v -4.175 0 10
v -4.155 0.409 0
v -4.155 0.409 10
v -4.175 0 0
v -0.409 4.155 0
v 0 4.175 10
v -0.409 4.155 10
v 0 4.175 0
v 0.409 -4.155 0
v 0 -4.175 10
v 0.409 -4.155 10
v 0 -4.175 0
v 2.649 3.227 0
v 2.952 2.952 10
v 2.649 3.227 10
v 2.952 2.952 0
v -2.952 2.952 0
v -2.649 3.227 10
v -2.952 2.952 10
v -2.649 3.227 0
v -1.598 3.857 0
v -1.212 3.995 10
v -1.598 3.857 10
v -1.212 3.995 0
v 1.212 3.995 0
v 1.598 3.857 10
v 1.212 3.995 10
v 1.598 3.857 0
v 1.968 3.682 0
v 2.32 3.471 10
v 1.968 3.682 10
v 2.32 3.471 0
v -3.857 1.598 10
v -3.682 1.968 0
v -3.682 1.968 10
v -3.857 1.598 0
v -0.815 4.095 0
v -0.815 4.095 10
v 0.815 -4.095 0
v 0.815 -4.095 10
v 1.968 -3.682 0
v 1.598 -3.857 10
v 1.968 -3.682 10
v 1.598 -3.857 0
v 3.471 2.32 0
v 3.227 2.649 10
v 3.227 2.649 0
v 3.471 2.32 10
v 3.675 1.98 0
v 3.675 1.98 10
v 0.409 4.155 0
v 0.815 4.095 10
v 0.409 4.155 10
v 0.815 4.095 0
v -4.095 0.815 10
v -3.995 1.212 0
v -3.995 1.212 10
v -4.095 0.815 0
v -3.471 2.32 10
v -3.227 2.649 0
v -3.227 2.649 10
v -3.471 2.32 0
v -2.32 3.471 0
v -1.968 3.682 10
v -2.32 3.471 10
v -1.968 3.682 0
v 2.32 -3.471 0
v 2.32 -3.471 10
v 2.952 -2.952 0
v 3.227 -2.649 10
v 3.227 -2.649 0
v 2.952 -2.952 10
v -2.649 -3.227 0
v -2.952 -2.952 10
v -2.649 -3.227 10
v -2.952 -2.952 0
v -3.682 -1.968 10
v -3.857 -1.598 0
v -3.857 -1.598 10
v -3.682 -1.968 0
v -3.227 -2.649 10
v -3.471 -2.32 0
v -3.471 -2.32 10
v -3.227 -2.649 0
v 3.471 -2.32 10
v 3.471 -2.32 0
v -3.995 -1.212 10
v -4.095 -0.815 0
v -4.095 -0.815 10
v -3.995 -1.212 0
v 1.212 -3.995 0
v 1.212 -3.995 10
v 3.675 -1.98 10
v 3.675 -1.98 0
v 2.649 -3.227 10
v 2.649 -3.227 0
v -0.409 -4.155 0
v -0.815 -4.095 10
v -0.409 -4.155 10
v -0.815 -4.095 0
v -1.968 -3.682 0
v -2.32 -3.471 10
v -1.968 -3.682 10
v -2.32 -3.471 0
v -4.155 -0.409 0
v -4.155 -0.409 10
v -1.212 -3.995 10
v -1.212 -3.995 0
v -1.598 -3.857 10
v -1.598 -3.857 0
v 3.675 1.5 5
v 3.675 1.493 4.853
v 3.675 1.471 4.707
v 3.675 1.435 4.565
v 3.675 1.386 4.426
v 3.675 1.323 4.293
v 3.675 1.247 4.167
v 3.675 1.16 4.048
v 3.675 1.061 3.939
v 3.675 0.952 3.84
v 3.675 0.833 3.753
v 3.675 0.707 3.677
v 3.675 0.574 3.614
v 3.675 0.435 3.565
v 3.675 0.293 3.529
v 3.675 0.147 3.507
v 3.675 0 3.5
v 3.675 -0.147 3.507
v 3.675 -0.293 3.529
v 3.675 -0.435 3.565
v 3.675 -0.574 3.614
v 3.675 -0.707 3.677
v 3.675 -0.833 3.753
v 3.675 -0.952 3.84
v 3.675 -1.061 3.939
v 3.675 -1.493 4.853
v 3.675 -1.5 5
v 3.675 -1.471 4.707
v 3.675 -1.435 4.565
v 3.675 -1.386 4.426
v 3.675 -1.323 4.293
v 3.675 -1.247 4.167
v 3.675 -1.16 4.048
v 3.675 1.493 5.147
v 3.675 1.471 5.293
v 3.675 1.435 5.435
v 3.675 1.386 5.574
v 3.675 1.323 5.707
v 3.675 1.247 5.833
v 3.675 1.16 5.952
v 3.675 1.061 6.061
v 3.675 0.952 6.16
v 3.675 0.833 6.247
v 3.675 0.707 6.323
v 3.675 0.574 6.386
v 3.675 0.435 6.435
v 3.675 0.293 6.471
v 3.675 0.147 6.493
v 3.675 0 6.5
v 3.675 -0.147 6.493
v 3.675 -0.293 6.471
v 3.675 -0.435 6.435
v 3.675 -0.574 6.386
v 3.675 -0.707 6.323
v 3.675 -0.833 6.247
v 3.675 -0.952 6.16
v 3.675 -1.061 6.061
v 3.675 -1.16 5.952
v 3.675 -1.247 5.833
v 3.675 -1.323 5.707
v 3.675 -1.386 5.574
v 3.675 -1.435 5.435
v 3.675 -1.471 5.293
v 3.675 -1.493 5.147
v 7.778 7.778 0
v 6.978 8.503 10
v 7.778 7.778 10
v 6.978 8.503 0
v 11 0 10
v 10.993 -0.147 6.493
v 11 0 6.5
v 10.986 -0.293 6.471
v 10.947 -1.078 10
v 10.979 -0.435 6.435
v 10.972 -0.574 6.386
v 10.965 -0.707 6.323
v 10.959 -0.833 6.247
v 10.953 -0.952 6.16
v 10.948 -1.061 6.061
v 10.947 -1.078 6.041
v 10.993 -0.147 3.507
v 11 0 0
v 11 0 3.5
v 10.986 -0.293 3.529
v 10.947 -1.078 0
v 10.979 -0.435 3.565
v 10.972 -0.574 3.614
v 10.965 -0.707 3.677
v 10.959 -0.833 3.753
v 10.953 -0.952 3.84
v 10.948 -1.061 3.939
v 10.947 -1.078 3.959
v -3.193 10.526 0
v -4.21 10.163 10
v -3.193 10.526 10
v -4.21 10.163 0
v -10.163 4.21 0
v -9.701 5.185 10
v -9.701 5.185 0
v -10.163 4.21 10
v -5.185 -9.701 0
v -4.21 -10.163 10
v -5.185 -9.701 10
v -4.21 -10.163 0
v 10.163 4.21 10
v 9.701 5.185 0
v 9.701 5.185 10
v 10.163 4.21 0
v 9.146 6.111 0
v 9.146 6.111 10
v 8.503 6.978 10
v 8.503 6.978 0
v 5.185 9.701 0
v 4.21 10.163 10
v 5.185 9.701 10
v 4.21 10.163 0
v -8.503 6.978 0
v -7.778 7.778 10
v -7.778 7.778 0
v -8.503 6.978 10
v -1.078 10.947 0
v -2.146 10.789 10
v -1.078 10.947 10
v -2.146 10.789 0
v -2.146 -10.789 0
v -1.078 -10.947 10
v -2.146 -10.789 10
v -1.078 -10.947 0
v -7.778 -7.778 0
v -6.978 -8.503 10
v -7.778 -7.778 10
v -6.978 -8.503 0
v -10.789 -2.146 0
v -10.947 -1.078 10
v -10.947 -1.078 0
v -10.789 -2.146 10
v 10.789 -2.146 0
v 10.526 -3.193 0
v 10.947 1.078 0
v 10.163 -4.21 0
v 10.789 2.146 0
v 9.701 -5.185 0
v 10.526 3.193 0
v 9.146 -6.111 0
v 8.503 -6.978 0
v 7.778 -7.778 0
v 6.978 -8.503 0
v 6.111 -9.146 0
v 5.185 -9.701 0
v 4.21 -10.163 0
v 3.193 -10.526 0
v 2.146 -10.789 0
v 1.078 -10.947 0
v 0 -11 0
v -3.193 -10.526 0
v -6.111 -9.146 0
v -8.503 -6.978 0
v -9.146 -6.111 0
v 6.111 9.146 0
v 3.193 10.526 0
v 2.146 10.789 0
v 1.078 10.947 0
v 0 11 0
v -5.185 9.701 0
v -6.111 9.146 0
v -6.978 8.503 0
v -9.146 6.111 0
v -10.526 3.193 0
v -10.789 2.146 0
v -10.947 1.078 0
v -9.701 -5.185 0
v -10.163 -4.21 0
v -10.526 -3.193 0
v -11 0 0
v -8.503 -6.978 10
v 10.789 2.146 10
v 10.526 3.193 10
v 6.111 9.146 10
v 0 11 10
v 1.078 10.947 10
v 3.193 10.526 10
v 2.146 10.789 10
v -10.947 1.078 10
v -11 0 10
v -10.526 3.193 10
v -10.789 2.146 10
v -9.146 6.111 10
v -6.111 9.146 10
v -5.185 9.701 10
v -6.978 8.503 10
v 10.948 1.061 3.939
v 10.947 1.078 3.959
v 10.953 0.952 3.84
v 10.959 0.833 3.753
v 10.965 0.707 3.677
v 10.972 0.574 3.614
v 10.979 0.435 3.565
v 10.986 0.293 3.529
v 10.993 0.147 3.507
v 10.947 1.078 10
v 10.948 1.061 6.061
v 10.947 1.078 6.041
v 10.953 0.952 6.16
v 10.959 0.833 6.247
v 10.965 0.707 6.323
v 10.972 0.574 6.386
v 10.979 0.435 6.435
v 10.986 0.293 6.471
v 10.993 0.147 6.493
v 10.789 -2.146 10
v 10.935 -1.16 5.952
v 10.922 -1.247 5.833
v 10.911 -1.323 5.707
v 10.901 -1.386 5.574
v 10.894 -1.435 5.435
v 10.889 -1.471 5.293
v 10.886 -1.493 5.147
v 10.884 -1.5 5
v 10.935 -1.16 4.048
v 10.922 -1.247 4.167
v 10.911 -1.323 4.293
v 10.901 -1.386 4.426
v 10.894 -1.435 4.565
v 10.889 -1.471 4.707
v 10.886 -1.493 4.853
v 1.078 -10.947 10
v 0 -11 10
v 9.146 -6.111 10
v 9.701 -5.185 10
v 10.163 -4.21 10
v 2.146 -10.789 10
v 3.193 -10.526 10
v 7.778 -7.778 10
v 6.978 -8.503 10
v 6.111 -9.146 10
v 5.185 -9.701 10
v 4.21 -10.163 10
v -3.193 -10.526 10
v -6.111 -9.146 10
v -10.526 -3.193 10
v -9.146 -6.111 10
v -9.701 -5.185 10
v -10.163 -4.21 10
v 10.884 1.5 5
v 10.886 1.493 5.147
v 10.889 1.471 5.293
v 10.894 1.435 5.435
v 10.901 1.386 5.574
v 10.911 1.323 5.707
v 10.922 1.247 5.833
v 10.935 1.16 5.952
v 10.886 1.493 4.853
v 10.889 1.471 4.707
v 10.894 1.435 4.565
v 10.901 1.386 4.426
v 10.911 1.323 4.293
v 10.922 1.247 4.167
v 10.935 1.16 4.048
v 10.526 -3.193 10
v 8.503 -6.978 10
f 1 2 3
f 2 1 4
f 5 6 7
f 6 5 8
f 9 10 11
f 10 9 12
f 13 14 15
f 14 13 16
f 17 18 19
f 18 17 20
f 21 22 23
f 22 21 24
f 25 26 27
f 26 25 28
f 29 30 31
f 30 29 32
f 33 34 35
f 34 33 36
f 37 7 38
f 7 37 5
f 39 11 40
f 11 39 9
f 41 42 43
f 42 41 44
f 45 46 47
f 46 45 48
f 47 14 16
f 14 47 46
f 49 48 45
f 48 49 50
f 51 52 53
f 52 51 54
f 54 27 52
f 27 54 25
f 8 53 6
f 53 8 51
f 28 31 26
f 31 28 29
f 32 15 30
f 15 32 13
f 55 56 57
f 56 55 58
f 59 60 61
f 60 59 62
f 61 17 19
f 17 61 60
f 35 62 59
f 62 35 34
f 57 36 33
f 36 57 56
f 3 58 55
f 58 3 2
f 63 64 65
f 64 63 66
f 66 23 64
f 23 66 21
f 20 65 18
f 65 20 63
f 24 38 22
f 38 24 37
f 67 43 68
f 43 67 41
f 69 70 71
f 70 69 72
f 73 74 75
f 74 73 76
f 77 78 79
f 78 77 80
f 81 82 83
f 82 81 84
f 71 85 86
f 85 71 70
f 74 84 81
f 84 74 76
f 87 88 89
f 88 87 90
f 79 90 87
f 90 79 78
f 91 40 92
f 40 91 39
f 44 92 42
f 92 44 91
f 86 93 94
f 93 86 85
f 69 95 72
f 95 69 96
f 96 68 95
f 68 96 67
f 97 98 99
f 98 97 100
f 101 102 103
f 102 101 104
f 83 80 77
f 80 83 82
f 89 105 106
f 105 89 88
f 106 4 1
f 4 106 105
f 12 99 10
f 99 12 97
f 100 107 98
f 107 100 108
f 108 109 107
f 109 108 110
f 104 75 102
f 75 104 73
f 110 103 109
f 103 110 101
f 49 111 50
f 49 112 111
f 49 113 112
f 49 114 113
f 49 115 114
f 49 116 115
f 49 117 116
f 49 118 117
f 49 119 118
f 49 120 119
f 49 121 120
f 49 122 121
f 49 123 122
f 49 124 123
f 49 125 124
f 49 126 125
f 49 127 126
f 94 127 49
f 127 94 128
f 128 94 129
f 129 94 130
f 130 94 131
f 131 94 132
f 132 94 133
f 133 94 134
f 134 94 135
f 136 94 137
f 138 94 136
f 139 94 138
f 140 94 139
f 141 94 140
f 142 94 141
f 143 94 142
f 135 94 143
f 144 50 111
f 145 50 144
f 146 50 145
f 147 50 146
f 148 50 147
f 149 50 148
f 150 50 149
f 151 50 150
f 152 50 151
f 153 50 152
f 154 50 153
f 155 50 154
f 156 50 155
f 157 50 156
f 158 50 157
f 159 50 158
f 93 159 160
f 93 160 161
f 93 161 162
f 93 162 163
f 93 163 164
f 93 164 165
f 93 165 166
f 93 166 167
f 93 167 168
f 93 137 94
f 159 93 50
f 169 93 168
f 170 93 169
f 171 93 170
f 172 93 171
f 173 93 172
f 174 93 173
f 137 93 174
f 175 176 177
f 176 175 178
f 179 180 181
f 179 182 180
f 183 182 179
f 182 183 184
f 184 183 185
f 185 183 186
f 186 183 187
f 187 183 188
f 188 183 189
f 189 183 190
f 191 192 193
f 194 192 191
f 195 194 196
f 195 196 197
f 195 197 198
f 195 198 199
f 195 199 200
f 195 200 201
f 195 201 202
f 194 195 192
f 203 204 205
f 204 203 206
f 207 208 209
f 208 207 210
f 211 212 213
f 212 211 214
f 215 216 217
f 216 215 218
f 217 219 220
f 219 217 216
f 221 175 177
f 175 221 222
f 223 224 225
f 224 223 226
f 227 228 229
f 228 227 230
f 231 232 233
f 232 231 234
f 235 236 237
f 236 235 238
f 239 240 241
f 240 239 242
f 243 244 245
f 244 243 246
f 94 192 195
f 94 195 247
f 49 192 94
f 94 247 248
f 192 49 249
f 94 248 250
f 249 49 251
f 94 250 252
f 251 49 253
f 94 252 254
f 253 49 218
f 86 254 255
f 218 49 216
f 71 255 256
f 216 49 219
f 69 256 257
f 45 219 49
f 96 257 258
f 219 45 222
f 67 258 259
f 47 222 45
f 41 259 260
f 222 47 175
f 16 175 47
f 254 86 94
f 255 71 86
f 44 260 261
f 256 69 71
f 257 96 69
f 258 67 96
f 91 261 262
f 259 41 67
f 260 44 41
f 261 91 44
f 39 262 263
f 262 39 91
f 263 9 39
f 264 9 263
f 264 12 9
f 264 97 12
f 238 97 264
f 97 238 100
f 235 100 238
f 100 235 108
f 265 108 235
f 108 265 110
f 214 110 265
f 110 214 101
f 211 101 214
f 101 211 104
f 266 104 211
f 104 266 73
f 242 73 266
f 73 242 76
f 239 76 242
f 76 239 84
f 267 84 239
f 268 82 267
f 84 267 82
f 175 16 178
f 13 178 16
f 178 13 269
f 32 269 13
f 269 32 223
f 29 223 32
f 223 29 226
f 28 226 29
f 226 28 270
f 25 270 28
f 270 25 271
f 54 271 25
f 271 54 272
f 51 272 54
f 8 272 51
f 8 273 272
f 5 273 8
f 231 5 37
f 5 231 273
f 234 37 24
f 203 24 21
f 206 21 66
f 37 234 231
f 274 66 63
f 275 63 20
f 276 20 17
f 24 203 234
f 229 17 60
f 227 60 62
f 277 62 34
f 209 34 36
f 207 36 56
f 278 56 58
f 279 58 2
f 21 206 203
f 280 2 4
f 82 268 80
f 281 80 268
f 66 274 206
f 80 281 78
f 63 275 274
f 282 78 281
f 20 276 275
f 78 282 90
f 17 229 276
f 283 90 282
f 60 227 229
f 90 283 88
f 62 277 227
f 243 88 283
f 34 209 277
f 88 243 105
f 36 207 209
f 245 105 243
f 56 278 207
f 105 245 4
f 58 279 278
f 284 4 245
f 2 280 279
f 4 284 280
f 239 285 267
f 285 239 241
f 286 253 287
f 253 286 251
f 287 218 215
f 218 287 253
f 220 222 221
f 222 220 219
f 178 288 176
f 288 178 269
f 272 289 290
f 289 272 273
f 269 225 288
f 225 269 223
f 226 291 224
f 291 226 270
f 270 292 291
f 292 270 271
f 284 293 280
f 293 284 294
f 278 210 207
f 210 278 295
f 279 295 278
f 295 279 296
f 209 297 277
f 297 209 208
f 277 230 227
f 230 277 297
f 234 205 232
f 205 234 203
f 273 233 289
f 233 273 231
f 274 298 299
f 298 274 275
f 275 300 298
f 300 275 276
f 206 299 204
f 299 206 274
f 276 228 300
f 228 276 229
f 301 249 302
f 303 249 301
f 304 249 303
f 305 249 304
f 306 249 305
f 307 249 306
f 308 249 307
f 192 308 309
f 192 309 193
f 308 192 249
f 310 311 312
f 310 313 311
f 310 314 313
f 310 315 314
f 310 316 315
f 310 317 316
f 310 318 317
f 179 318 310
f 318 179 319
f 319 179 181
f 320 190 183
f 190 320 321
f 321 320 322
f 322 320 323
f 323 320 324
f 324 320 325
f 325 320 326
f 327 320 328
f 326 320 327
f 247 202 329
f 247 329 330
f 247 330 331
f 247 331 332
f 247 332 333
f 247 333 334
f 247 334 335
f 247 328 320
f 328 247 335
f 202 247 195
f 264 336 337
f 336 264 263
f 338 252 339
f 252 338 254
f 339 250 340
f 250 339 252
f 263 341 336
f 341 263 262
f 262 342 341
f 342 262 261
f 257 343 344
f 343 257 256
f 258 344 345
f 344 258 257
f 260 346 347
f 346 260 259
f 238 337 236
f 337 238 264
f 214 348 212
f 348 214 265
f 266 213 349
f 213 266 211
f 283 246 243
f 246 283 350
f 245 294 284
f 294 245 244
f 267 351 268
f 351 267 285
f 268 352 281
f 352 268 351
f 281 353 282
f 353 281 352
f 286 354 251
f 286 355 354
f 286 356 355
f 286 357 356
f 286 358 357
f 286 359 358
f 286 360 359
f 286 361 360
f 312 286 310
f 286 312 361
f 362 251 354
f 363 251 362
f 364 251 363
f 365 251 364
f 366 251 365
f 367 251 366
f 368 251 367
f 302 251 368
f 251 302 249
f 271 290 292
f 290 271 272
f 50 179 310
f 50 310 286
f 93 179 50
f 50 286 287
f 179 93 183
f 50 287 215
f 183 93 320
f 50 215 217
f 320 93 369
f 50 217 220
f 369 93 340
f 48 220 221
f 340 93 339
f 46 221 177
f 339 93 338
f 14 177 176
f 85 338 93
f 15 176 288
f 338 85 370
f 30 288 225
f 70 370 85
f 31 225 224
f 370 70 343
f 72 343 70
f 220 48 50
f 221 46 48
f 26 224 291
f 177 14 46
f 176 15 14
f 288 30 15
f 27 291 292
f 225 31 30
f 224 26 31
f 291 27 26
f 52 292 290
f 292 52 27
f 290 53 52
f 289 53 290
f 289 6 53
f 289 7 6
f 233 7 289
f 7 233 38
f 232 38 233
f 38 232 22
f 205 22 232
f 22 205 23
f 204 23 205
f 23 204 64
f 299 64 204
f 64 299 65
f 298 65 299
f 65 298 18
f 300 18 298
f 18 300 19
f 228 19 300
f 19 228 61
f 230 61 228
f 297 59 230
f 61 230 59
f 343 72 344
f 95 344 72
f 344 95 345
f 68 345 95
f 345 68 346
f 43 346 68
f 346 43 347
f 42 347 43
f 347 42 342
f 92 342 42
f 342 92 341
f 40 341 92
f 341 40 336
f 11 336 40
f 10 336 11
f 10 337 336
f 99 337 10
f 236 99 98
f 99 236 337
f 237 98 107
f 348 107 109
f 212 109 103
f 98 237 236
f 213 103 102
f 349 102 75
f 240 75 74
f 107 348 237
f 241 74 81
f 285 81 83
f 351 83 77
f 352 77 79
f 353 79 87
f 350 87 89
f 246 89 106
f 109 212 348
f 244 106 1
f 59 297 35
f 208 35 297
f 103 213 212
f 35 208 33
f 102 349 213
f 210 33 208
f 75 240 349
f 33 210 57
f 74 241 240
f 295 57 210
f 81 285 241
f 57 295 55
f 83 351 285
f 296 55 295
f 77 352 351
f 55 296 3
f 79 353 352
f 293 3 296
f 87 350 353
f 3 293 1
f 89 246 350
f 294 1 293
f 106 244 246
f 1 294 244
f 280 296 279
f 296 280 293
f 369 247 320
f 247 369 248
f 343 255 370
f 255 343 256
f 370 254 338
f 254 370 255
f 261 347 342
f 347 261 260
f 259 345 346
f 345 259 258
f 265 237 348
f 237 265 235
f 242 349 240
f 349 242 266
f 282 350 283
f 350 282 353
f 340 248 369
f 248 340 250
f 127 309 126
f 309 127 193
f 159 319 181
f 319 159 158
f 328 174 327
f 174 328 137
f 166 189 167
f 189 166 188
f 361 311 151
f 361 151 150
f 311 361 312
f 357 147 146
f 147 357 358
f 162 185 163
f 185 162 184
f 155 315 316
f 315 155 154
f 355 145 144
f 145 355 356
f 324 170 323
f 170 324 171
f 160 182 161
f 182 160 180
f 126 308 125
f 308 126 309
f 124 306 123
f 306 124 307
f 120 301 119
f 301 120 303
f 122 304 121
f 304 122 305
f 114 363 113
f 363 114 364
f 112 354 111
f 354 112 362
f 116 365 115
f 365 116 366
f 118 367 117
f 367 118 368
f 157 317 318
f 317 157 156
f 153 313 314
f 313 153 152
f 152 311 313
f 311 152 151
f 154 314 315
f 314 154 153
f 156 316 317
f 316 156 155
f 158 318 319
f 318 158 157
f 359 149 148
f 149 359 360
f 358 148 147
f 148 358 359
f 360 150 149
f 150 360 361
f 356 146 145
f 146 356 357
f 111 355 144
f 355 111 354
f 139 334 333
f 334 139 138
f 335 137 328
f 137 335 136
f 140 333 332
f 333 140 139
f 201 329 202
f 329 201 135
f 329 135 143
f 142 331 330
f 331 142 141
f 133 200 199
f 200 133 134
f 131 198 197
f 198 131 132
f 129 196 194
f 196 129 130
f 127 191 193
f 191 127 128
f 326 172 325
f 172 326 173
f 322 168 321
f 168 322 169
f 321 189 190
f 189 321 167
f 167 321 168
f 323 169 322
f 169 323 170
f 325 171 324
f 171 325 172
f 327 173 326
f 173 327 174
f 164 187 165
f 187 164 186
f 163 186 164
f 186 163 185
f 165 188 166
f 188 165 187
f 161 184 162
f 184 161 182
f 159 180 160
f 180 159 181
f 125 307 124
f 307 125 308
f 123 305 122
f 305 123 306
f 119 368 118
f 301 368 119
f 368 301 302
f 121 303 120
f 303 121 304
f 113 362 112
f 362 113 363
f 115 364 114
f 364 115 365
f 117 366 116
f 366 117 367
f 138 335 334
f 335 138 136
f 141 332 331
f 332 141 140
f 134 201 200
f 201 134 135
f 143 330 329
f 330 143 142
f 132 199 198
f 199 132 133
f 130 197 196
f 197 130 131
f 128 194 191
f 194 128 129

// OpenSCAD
// Gen-DB — shaft collar with D-flat bore (set screw bears on the flat); print x4
include <parameters.scad>;
$fn = 64;
// D-flat keyed bore: flat faces +X (angle 0 = magnet pocket 0 = index notch)
module dflat_bore(h) {
    intersection() {
        cylinder(d=shaft_bore, h=h);
        translate([-shaft_bore, -shaft_bore, 0]) cube([shaft_bore + dflat_x, 2*shaft_bore, h]);
    }
}

od = 22; h = collar_h; set_d = 3.0;
difference() {
    cylinder(d=od, h=h);
    translate([0, 0, -0.1]) dflat_bore(h + 0.2);
    translate([0, 0, h/2]) rotate([0, 90, 0]) cylinder(d=set_d, h=od);
}
